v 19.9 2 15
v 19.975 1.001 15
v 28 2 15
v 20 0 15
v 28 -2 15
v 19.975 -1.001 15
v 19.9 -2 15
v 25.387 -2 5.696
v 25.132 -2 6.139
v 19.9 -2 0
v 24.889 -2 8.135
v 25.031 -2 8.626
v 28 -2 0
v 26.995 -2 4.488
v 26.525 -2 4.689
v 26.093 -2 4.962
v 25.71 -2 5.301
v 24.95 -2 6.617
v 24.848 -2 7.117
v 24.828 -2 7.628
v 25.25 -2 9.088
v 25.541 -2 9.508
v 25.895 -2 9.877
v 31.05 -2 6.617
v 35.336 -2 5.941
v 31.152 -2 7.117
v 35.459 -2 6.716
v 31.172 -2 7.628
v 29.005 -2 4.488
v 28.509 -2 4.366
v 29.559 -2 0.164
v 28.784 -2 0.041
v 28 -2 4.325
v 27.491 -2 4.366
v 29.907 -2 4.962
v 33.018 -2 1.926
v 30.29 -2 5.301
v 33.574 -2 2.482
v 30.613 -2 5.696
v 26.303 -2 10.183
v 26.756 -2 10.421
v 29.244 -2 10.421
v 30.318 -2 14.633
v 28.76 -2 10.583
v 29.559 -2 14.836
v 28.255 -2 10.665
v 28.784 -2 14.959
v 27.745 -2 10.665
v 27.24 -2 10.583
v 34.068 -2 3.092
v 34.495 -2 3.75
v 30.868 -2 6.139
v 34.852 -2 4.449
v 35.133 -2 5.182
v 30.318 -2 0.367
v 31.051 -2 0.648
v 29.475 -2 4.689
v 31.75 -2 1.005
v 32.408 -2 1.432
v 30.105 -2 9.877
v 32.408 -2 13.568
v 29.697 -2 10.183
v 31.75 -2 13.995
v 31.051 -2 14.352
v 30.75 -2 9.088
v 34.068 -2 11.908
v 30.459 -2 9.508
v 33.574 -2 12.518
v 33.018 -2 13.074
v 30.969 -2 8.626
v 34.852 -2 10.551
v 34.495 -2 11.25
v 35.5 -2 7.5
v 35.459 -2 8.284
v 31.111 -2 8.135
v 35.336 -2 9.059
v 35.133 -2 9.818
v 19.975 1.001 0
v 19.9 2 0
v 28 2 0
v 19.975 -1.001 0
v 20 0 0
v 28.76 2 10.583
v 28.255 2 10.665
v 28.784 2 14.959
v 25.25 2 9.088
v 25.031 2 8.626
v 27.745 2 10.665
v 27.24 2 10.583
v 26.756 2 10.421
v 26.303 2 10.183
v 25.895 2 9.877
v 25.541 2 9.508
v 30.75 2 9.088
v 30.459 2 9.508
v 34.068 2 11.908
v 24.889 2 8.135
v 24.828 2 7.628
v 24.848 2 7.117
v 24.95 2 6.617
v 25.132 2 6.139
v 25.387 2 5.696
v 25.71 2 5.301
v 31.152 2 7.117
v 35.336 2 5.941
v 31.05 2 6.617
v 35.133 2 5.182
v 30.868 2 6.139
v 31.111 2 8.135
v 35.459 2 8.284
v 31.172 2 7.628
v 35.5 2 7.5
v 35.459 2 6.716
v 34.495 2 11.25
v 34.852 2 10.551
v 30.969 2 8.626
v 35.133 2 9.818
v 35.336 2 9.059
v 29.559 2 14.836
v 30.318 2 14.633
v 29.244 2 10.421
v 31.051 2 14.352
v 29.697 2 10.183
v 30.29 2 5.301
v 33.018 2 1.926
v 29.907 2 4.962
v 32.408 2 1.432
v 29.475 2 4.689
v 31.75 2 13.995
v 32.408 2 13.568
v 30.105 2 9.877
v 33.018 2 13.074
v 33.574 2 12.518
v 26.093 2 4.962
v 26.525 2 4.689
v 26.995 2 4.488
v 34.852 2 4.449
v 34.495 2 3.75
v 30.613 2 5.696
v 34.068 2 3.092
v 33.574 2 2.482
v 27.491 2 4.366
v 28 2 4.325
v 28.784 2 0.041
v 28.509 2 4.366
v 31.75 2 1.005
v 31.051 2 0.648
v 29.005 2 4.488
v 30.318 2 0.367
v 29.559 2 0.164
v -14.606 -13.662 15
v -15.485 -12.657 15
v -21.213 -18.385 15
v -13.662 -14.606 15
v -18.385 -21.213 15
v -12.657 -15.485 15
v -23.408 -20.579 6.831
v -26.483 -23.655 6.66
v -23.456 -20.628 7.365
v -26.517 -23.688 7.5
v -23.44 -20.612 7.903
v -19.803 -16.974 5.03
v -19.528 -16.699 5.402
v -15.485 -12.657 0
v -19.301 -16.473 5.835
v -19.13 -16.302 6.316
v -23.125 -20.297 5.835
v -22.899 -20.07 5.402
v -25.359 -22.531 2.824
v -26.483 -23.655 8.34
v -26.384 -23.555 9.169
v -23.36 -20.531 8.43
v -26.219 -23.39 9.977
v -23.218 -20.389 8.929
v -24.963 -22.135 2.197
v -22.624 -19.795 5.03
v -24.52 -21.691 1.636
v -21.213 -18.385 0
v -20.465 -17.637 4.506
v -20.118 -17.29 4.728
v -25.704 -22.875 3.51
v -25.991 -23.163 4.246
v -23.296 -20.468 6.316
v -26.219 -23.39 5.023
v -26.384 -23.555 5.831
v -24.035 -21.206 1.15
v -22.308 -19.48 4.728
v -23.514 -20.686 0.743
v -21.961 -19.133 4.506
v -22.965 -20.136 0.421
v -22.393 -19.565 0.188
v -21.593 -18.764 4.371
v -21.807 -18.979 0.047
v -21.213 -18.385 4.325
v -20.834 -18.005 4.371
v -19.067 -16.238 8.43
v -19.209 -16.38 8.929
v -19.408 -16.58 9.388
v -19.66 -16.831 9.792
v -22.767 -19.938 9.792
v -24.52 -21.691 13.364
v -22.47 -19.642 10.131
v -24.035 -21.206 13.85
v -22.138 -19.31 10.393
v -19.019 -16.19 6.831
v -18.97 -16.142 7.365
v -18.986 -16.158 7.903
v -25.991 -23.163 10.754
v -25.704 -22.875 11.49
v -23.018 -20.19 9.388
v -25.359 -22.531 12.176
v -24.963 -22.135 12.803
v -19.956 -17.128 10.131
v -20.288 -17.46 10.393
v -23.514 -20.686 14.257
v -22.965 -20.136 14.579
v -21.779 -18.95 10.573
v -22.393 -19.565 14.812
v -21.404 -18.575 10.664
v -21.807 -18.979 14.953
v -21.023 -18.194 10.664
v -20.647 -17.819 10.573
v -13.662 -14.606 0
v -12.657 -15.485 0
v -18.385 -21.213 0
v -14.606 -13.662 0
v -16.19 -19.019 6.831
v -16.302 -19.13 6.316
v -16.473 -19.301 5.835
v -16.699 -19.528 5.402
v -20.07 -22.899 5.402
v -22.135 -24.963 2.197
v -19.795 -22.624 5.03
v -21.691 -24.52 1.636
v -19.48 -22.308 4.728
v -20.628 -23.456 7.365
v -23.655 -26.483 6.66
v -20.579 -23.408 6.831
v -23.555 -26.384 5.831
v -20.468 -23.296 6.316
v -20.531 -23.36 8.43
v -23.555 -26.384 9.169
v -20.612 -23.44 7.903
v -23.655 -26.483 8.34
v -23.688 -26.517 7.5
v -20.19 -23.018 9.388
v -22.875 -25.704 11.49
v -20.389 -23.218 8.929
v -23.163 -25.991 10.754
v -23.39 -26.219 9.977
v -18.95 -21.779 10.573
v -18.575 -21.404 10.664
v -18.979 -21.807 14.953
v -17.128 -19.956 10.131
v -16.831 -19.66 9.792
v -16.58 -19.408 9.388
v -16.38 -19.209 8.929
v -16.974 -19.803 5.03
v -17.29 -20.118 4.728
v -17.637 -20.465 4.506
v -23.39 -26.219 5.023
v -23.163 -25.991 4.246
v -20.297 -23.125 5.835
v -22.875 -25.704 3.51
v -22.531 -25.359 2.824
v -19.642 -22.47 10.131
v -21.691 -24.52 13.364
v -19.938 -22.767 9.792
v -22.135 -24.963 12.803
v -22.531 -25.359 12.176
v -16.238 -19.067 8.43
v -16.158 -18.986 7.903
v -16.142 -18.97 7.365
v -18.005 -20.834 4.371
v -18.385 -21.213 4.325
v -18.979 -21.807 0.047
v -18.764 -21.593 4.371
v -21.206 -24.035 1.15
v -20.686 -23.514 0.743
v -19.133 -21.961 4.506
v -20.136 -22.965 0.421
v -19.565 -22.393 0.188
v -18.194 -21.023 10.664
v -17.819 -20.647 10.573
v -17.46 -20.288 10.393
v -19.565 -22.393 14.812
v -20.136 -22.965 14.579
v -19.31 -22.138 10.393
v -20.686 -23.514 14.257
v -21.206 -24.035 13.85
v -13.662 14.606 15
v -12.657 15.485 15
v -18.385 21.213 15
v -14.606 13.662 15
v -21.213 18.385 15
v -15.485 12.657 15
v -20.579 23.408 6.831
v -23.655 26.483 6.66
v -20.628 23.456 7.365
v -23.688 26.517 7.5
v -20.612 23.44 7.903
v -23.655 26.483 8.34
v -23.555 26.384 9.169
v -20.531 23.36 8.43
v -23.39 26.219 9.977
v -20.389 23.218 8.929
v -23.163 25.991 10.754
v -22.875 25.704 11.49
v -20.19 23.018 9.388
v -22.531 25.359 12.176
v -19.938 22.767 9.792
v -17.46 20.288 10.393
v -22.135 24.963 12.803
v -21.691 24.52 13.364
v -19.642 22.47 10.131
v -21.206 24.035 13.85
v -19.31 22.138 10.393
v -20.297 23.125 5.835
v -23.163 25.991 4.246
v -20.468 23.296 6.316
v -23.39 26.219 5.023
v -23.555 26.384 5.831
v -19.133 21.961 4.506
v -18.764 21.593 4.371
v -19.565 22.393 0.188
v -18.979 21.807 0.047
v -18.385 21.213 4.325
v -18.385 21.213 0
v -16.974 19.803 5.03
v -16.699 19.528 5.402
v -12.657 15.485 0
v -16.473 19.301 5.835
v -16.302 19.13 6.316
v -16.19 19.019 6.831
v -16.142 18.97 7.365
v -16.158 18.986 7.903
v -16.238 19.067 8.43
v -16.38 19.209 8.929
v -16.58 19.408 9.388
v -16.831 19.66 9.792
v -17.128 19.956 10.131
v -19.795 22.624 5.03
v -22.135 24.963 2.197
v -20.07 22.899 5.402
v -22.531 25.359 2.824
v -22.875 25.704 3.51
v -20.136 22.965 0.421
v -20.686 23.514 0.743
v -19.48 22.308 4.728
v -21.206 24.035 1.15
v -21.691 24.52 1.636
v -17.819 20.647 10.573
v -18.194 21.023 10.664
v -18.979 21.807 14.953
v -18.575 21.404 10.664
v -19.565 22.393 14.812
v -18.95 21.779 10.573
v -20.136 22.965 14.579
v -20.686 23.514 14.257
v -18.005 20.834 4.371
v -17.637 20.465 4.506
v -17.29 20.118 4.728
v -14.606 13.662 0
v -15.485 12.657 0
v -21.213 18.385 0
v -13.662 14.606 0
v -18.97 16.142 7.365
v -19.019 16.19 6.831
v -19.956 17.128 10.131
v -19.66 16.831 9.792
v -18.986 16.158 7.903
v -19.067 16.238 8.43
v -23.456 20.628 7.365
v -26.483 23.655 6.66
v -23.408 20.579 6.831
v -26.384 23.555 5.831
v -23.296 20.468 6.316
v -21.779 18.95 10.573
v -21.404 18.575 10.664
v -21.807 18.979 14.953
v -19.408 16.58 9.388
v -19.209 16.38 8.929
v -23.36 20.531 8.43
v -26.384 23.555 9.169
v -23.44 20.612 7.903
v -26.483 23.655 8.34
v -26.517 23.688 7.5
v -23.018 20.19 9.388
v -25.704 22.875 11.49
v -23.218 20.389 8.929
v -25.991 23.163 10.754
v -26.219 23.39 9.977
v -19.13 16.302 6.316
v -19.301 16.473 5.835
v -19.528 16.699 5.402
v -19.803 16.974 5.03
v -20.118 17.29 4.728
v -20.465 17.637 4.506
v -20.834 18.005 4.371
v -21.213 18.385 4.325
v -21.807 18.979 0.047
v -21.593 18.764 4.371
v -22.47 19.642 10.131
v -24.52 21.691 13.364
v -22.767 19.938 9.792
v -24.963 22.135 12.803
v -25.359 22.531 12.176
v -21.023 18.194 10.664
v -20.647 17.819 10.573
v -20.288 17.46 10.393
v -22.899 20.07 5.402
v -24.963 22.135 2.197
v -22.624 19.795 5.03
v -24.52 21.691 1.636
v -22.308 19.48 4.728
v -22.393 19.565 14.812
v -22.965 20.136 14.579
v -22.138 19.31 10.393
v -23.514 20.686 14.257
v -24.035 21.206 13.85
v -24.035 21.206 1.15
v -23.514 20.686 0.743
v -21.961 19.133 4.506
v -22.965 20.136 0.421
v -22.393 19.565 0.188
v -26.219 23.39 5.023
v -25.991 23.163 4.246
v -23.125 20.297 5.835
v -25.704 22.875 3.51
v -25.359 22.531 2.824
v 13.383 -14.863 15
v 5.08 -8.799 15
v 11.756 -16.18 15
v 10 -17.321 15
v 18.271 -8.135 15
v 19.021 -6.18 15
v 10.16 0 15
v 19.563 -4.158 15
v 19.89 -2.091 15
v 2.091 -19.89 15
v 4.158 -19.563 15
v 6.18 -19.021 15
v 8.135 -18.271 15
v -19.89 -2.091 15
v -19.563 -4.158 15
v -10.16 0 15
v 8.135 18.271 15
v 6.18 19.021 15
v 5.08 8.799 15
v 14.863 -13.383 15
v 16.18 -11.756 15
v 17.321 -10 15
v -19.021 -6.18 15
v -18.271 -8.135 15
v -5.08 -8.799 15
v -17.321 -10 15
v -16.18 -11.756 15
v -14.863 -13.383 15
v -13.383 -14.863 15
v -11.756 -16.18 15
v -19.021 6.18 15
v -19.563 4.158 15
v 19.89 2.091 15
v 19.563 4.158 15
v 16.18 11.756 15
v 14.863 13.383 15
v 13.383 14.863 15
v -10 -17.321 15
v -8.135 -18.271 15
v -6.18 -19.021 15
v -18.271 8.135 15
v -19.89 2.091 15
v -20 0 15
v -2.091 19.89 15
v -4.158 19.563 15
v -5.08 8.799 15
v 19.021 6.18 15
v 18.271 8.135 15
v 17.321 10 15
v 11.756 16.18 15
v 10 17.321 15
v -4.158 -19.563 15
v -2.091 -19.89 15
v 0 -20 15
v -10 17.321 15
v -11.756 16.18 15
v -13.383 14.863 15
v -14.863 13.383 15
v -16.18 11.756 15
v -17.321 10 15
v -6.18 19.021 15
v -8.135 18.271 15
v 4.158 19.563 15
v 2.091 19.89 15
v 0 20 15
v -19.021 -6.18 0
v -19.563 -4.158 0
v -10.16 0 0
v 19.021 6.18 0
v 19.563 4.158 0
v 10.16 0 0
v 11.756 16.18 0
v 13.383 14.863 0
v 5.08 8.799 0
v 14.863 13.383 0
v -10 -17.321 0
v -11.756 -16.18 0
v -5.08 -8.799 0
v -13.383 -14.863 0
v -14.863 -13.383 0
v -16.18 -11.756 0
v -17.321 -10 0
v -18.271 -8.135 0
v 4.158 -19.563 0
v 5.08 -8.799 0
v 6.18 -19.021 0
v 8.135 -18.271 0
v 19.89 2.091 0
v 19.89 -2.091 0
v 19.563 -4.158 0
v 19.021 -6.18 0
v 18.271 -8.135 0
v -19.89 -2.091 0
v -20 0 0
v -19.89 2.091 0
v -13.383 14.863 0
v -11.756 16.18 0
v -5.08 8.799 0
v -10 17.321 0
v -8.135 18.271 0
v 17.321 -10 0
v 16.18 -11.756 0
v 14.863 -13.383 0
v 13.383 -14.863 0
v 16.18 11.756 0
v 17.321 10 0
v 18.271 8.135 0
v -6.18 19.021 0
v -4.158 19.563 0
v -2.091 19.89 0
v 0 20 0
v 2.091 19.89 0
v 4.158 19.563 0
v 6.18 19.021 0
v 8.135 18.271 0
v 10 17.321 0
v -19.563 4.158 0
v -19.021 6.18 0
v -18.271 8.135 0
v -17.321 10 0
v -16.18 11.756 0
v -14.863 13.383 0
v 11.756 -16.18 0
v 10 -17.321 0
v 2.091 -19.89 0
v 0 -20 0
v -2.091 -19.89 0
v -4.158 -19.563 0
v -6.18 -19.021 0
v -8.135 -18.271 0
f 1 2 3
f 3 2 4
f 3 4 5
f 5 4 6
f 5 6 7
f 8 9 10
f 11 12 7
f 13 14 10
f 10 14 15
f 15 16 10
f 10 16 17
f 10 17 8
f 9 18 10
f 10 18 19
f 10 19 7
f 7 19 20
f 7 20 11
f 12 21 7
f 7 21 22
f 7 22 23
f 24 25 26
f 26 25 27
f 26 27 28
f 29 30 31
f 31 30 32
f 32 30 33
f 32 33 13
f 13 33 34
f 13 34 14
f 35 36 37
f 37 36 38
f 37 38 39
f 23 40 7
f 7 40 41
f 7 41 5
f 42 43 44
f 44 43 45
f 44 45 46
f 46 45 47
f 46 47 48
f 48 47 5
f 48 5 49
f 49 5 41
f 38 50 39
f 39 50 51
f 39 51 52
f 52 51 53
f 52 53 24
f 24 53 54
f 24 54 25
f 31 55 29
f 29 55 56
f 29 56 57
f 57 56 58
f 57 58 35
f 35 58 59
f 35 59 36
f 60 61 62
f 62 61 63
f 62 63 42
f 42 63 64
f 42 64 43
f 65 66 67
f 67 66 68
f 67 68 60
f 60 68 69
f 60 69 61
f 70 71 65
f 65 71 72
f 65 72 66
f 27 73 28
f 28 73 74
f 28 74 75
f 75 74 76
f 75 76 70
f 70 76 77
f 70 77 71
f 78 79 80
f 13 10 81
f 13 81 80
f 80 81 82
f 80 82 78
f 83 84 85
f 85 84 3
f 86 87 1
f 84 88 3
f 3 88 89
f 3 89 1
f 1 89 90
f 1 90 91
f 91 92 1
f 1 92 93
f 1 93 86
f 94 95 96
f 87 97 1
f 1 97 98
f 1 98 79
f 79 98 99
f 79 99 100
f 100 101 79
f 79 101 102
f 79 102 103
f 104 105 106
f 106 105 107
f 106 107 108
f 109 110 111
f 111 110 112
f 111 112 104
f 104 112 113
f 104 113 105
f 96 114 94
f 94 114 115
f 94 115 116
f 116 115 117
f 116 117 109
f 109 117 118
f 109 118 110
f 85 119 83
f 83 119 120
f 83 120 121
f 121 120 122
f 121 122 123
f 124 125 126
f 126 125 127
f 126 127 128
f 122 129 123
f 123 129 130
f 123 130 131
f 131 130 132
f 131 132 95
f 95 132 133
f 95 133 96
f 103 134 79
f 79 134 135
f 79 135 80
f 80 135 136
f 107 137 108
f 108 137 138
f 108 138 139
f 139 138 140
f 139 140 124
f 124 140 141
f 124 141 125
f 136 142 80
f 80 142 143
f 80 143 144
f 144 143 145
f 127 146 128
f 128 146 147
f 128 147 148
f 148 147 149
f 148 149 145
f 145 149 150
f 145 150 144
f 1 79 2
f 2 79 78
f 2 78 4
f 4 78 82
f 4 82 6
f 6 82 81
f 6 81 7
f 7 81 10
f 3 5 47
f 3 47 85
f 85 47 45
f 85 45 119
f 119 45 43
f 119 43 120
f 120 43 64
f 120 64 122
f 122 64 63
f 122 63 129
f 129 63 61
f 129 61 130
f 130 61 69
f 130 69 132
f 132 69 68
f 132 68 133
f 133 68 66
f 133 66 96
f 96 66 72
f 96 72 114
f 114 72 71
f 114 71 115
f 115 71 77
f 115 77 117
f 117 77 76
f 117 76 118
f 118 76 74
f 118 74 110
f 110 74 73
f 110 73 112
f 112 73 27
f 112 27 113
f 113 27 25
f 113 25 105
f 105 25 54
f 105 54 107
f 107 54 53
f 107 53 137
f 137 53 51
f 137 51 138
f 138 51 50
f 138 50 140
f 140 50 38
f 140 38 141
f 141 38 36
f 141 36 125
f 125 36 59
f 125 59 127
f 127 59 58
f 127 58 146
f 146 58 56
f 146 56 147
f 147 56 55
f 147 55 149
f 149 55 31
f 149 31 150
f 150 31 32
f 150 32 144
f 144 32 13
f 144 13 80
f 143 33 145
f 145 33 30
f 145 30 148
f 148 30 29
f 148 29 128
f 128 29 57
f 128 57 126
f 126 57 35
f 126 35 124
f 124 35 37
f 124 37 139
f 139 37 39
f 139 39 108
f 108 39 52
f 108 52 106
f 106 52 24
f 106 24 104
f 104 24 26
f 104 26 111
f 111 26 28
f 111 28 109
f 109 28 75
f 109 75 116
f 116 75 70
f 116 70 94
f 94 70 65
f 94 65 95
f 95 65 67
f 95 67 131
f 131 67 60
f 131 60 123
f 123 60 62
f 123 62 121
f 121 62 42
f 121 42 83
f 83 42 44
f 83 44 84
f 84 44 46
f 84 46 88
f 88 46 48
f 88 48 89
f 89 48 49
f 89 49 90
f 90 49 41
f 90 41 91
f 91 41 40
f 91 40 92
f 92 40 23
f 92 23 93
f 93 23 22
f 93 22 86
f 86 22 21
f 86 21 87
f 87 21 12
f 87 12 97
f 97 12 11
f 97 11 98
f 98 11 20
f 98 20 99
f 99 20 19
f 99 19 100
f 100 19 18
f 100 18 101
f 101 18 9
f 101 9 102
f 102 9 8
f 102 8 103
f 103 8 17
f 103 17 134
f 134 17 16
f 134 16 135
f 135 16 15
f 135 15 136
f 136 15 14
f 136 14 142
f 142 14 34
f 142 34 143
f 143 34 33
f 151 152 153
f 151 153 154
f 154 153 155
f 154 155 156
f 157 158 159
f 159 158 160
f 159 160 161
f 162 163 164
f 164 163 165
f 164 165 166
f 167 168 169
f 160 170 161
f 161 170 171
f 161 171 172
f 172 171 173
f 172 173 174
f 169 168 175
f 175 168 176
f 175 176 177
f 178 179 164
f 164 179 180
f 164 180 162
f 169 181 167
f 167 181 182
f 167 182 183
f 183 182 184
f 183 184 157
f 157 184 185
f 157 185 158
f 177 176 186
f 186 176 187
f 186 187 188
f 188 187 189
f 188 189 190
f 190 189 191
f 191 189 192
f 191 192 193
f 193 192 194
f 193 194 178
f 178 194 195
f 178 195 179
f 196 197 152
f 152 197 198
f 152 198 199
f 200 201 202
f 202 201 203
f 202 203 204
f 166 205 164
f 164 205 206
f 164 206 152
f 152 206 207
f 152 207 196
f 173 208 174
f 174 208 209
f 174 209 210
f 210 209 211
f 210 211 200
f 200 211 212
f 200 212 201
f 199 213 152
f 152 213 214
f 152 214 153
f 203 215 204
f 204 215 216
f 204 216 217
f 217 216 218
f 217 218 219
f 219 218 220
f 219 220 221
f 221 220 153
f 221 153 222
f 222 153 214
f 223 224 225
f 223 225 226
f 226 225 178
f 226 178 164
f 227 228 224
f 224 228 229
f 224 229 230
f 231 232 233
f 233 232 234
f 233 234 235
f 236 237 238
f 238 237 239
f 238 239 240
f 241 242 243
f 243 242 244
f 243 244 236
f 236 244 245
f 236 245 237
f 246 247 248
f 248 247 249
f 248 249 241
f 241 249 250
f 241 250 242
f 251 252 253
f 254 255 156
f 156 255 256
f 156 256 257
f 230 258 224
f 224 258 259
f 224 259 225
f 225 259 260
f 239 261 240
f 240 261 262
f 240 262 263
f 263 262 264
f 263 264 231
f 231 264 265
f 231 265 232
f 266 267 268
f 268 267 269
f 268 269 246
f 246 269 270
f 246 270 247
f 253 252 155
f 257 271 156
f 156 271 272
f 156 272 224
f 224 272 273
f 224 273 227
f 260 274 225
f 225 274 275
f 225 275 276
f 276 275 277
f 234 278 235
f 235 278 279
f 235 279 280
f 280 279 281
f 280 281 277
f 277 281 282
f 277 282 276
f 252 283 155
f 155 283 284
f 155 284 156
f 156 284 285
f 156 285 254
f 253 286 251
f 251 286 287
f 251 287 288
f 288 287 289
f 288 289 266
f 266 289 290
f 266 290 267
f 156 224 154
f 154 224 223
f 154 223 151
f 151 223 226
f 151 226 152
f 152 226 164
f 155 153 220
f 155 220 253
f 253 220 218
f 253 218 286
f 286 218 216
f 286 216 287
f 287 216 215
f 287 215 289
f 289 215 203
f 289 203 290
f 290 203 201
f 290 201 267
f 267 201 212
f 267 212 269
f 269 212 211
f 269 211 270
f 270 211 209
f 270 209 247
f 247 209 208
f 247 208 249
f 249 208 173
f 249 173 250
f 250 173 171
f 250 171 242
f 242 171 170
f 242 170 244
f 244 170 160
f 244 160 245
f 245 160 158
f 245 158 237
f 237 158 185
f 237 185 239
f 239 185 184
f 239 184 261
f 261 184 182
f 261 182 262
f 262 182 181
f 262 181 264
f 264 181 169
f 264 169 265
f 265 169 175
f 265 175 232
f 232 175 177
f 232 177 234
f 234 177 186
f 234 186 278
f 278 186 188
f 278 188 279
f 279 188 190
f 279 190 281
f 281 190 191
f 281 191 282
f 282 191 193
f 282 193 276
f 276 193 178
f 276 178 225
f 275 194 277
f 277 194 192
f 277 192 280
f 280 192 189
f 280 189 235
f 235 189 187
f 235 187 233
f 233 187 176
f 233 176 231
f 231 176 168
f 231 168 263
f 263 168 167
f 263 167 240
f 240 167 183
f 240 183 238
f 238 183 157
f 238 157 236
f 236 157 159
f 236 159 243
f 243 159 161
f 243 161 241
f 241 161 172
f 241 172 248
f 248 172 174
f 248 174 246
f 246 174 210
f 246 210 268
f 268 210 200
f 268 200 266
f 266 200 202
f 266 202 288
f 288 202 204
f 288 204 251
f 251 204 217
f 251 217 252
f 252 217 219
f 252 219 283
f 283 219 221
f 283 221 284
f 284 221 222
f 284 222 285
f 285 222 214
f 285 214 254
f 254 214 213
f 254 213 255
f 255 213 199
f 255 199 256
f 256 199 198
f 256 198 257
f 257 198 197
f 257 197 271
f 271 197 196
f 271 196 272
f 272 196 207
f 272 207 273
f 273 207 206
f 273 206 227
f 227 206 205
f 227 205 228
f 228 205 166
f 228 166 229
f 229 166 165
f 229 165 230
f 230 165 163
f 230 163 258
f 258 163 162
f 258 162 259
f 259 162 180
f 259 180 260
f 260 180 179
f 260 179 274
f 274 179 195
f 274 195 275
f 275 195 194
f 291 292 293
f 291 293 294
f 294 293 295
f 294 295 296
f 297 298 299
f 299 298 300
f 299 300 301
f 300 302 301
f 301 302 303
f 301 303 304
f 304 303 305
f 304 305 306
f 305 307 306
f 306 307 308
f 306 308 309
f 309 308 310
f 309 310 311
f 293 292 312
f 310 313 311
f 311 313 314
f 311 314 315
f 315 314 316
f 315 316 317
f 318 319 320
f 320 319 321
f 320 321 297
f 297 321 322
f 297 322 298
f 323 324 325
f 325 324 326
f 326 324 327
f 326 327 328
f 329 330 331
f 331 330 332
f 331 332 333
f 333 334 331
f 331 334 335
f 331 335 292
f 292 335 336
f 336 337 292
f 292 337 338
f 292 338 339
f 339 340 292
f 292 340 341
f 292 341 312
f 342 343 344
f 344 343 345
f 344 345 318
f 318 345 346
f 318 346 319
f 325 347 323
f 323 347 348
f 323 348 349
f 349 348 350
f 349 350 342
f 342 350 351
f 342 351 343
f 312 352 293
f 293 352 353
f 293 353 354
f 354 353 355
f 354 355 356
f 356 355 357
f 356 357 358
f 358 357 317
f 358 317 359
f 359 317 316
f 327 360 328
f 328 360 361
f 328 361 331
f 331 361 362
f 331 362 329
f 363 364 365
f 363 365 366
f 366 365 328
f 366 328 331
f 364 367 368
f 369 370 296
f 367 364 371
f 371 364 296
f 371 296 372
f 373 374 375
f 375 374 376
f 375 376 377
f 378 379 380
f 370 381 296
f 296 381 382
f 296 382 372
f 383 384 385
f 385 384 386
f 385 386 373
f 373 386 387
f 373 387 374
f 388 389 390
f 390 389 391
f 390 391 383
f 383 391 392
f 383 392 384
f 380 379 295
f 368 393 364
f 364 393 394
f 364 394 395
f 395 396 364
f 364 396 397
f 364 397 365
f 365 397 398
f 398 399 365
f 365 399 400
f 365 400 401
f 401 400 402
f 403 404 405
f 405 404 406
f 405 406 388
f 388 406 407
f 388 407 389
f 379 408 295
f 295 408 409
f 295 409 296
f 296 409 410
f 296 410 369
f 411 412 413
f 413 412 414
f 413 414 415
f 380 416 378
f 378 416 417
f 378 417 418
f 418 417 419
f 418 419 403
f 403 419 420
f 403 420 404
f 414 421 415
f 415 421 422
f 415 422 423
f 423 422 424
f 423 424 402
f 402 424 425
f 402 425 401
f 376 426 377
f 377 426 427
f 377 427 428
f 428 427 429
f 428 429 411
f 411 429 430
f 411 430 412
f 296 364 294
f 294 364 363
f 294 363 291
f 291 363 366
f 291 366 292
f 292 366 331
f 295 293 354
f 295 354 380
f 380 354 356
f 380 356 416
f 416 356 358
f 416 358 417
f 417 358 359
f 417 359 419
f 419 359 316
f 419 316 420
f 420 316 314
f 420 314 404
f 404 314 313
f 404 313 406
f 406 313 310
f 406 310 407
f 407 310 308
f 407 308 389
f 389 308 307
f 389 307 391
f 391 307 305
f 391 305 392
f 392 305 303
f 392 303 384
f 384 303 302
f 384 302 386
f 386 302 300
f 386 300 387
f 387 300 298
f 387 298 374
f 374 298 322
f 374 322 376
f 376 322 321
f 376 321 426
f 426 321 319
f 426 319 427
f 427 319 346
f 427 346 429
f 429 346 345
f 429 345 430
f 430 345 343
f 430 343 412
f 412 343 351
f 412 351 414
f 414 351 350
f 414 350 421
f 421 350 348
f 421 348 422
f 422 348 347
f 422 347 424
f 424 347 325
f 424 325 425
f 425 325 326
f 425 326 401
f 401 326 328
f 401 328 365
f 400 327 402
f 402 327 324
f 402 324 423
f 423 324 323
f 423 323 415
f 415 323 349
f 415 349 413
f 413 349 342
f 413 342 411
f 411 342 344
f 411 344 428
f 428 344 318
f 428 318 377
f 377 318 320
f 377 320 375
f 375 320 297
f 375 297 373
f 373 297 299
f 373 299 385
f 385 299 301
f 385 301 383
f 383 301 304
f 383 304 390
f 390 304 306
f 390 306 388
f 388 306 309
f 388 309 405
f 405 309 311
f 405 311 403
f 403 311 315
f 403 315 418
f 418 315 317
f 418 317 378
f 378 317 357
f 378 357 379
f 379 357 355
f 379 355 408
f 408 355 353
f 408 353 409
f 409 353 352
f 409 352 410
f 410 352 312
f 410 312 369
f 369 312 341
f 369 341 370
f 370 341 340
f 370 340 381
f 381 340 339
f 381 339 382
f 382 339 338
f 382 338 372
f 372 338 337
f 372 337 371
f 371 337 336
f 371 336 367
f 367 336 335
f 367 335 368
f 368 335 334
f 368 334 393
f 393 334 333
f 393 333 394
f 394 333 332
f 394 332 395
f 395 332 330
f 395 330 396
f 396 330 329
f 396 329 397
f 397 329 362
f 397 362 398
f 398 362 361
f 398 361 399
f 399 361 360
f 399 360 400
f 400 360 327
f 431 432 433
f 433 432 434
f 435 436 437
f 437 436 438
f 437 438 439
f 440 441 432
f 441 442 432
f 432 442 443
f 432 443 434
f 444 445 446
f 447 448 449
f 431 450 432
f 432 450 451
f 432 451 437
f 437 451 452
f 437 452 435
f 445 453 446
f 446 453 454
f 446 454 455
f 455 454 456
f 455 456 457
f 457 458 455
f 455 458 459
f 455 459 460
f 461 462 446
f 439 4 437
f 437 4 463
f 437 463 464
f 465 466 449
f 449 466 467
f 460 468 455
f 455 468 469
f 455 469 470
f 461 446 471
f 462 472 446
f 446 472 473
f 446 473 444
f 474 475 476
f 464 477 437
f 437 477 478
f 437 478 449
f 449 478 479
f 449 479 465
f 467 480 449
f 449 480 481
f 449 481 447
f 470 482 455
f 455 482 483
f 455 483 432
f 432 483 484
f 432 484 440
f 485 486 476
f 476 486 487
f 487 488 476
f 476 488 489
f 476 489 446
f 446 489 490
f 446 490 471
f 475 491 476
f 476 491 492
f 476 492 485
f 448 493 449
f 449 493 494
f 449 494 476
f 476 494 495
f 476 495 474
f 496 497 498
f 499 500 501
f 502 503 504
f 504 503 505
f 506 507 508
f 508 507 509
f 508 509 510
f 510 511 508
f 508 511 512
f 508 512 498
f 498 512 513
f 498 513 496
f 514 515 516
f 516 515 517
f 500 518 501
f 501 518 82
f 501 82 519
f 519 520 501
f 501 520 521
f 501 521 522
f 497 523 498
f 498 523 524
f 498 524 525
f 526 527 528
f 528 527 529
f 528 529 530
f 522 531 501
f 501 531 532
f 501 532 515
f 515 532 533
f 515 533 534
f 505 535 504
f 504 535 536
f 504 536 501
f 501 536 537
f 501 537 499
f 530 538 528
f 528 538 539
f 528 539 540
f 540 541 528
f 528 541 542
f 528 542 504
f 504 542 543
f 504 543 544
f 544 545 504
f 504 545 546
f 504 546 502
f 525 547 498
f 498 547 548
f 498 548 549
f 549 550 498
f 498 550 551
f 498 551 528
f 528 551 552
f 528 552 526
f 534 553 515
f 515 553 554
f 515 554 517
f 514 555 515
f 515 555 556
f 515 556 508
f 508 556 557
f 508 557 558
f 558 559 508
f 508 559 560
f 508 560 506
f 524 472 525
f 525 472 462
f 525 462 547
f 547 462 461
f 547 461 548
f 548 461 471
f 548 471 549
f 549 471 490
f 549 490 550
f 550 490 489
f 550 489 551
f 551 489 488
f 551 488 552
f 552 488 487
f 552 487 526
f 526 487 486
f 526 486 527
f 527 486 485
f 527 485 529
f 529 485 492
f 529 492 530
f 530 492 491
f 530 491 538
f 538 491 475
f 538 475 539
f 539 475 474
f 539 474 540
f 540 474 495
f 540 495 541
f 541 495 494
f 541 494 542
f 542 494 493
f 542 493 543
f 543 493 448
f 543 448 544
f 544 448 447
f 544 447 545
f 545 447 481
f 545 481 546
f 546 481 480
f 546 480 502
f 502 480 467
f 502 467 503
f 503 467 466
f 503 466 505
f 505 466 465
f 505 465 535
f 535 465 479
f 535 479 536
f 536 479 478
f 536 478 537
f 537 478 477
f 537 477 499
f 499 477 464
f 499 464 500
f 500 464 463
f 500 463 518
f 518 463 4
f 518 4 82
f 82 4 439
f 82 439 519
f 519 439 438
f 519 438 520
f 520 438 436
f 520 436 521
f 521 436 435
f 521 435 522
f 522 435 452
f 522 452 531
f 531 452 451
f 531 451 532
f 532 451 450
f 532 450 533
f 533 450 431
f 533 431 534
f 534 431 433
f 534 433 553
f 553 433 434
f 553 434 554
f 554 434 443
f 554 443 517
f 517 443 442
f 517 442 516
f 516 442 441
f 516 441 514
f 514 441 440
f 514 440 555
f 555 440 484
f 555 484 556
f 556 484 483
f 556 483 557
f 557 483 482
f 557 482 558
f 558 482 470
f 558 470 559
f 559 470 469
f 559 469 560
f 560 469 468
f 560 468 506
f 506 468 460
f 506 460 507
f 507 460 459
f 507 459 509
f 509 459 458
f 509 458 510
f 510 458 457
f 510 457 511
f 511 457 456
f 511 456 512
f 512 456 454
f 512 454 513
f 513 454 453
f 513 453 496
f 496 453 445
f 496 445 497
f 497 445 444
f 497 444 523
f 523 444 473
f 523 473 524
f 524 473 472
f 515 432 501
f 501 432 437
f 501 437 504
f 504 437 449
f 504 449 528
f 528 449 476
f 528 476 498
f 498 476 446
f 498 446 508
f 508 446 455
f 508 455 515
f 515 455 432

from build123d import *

# Parameters (mm, degrees)
SKETCH1_R                            = 20
SKETCH1_R_2                          = 2.5
BOSS_EXTRUDE1_DEPTH                  = 15
SKETCH5_W                            = 15
SKETCH5_H                            = 2
BOSS_EXTRUDE2_DEPTH                  = 8
BOSS_EXTRUDE2_DIRECTION_2_REACH      = 49.17
BOSS_EXTRUDE2_DIRECTION_2_END_RADIUS = 20
BOSS_EXTRUDE3_DEPTH                  = 4
SKETCH7_R                            = 3.175
CUT_EXTRUDE1_DEPTH                   = 4
CIRPATTERN2_ANGLE                    = 135
CIRPATTERN2_2_ANGLE                  = 135
CUT_EXTRUDE2_DEPTH                   = 15


with BuildPart() as part:
    # Sketch1 → Boss-Extrude1 (new body)
    with BuildSketch(Plane.XY):
        Circle(SKETCH1_R)
        Circle(SKETCH1_R_2, mode=Mode.SUBTRACT)
    extrude(amount=BOSS_EXTRUDE1_DEPTH)

    # Sketch8 → Cut-Extrude2 (cut)
    with BuildSketch(Plane(origin=(0, 0, 0), x_dir=(-1, 0, 0), z_dir=(0, 0, -1))):
        Polygon((-5.08, -8.798818102), (5.08, -8.798818102), (10.16, 0), (5.08, 8.798818102), (-5.08, 8.798818102), (-10.16, 0), align=None)
    extrude(amount=-CUT_EXTRUDE2_DEPTH, mode=Mode.SUBTRACT)


with BuildPart() as body_2:
    # Sketch5 → Boss-Extrude2 (new body)
    with BuildSketch(Plane(origin=(20, 0, 0), x_dir=(0, 0, -1), z_dir=(1, 0, 0))):
        with Locations((-7.5, 1)):
            Rectangle(SKETCH5_W, SKETCH5_H)
        with Locations((-7.5, -1)):
            Rectangle(SKETCH5_W, SKETCH5_H)
    extrude(amount=BOSS_EXTRUDE2_DEPTH)

    # Boss-Extrude2 direction 2: up to this cylinder (the profile starts outside it)
    boss_extrude2_direction_2_end = Plane(origin=(0, 0, 7.5), z_dir=(0, 0, -1)) * Cylinder(BOSS_EXTRUDE2_DIRECTION_2_END_RADIUS, 139.34, mode=Mode.PRIVATE)
    # Sketch5 → Boss-Extrude2 direction 2 (add, up to the surface)
    with BuildSketch(Plane(origin=(20, 0, 0), x_dir=(0, 0, -1), z_dir=(1, 0, 0)), mode=Mode.PRIVATE) as boss_extrude2_direction_2_sk1:
        with Locations((-7.5, 1)):
            Rectangle(SKETCH5_W, SKETCH5_H)
    boss_extrude2_direction_2_tool1 = extrude(boss_extrude2_direction_2_sk1.sketch, amount=-BOSS_EXTRUDE2_DIRECTION_2_REACH, mode=Mode.PRIVATE) - boss_extrude2_direction_2_end
    add(boss_extrude2_direction_2_tool1.solids().sort_by_distance((20, 1, 7.5))[0])
    # Sketch5 → Boss-Extrude2 direction 2 (add, up to the surface)
    with BuildSketch(Plane(origin=(20, 0, 0), x_dir=(0, 0, -1), z_dir=(1, 0, 0)), mode=Mode.PRIVATE) as boss_extrude2_direction_2_sk2:
        with Locations((-7.5, -1)):
            Rectangle(SKETCH5_W, SKETCH5_H)
    boss_extrude2_direction_2_tool2 = extrude(boss_extrude2_direction_2_sk2.sketch, amount=-BOSS_EXTRUDE2_DIRECTION_2_REACH, mode=Mode.PRIVATE) - boss_extrude2_direction_2_end
    add(boss_extrude2_direction_2_tool2.solids().sort_by_distance((20, -1, 7.5))[0])

    # Sketch6 → Boss-Extrude3 (add)
    with BuildSketch(Plane(origin=(0, -2, 0), x_dir=(-1, 0, 0), z_dir=(0, -1, 0))):
        with BuildLine():
            Line((-28, -15), (-28, 0))
            ThreePointArc((-28, 0), (-35.5, -7.5), (-28, -15))
        make_face()
    extrude(amount=-BOSS_EXTRUDE3_DEPTH)

    # Sketch7 → Cut-Extrude1 (cut)
    with BuildSketch(Plane(origin=(0, -2, 0), x_dir=(-1, 0, 0), z_dir=(0, -1, 0))):
        with Locations(Location((-28, -7.5, 0), (0, 0, 90))):
            Circle(SKETCH7_R)
    extrude(amount=-CUT_EXTRUDE1_DEPTH, mode=Mode.SUBTRACT)


with BuildPart() as body_3:
    # CirPattern2: read off the stored shape, not the designer's step
    # CirPattern2: copy of body 2
    add(body_2.part.rotate(Axis((0, 0, 0), (0, 0, 1)), CIRPATTERN2_ANGLE))


with BuildPart() as body_4:
    # CirPattern2 2: copy of body 2
    add(body_2.part.rotate(Axis((0, 0, 0), (0, 0, -1)), CIRPATTERN2_2_ANGLE))


solid = Compound([part.part, body_2.part, body_3.part, body_4.part])
